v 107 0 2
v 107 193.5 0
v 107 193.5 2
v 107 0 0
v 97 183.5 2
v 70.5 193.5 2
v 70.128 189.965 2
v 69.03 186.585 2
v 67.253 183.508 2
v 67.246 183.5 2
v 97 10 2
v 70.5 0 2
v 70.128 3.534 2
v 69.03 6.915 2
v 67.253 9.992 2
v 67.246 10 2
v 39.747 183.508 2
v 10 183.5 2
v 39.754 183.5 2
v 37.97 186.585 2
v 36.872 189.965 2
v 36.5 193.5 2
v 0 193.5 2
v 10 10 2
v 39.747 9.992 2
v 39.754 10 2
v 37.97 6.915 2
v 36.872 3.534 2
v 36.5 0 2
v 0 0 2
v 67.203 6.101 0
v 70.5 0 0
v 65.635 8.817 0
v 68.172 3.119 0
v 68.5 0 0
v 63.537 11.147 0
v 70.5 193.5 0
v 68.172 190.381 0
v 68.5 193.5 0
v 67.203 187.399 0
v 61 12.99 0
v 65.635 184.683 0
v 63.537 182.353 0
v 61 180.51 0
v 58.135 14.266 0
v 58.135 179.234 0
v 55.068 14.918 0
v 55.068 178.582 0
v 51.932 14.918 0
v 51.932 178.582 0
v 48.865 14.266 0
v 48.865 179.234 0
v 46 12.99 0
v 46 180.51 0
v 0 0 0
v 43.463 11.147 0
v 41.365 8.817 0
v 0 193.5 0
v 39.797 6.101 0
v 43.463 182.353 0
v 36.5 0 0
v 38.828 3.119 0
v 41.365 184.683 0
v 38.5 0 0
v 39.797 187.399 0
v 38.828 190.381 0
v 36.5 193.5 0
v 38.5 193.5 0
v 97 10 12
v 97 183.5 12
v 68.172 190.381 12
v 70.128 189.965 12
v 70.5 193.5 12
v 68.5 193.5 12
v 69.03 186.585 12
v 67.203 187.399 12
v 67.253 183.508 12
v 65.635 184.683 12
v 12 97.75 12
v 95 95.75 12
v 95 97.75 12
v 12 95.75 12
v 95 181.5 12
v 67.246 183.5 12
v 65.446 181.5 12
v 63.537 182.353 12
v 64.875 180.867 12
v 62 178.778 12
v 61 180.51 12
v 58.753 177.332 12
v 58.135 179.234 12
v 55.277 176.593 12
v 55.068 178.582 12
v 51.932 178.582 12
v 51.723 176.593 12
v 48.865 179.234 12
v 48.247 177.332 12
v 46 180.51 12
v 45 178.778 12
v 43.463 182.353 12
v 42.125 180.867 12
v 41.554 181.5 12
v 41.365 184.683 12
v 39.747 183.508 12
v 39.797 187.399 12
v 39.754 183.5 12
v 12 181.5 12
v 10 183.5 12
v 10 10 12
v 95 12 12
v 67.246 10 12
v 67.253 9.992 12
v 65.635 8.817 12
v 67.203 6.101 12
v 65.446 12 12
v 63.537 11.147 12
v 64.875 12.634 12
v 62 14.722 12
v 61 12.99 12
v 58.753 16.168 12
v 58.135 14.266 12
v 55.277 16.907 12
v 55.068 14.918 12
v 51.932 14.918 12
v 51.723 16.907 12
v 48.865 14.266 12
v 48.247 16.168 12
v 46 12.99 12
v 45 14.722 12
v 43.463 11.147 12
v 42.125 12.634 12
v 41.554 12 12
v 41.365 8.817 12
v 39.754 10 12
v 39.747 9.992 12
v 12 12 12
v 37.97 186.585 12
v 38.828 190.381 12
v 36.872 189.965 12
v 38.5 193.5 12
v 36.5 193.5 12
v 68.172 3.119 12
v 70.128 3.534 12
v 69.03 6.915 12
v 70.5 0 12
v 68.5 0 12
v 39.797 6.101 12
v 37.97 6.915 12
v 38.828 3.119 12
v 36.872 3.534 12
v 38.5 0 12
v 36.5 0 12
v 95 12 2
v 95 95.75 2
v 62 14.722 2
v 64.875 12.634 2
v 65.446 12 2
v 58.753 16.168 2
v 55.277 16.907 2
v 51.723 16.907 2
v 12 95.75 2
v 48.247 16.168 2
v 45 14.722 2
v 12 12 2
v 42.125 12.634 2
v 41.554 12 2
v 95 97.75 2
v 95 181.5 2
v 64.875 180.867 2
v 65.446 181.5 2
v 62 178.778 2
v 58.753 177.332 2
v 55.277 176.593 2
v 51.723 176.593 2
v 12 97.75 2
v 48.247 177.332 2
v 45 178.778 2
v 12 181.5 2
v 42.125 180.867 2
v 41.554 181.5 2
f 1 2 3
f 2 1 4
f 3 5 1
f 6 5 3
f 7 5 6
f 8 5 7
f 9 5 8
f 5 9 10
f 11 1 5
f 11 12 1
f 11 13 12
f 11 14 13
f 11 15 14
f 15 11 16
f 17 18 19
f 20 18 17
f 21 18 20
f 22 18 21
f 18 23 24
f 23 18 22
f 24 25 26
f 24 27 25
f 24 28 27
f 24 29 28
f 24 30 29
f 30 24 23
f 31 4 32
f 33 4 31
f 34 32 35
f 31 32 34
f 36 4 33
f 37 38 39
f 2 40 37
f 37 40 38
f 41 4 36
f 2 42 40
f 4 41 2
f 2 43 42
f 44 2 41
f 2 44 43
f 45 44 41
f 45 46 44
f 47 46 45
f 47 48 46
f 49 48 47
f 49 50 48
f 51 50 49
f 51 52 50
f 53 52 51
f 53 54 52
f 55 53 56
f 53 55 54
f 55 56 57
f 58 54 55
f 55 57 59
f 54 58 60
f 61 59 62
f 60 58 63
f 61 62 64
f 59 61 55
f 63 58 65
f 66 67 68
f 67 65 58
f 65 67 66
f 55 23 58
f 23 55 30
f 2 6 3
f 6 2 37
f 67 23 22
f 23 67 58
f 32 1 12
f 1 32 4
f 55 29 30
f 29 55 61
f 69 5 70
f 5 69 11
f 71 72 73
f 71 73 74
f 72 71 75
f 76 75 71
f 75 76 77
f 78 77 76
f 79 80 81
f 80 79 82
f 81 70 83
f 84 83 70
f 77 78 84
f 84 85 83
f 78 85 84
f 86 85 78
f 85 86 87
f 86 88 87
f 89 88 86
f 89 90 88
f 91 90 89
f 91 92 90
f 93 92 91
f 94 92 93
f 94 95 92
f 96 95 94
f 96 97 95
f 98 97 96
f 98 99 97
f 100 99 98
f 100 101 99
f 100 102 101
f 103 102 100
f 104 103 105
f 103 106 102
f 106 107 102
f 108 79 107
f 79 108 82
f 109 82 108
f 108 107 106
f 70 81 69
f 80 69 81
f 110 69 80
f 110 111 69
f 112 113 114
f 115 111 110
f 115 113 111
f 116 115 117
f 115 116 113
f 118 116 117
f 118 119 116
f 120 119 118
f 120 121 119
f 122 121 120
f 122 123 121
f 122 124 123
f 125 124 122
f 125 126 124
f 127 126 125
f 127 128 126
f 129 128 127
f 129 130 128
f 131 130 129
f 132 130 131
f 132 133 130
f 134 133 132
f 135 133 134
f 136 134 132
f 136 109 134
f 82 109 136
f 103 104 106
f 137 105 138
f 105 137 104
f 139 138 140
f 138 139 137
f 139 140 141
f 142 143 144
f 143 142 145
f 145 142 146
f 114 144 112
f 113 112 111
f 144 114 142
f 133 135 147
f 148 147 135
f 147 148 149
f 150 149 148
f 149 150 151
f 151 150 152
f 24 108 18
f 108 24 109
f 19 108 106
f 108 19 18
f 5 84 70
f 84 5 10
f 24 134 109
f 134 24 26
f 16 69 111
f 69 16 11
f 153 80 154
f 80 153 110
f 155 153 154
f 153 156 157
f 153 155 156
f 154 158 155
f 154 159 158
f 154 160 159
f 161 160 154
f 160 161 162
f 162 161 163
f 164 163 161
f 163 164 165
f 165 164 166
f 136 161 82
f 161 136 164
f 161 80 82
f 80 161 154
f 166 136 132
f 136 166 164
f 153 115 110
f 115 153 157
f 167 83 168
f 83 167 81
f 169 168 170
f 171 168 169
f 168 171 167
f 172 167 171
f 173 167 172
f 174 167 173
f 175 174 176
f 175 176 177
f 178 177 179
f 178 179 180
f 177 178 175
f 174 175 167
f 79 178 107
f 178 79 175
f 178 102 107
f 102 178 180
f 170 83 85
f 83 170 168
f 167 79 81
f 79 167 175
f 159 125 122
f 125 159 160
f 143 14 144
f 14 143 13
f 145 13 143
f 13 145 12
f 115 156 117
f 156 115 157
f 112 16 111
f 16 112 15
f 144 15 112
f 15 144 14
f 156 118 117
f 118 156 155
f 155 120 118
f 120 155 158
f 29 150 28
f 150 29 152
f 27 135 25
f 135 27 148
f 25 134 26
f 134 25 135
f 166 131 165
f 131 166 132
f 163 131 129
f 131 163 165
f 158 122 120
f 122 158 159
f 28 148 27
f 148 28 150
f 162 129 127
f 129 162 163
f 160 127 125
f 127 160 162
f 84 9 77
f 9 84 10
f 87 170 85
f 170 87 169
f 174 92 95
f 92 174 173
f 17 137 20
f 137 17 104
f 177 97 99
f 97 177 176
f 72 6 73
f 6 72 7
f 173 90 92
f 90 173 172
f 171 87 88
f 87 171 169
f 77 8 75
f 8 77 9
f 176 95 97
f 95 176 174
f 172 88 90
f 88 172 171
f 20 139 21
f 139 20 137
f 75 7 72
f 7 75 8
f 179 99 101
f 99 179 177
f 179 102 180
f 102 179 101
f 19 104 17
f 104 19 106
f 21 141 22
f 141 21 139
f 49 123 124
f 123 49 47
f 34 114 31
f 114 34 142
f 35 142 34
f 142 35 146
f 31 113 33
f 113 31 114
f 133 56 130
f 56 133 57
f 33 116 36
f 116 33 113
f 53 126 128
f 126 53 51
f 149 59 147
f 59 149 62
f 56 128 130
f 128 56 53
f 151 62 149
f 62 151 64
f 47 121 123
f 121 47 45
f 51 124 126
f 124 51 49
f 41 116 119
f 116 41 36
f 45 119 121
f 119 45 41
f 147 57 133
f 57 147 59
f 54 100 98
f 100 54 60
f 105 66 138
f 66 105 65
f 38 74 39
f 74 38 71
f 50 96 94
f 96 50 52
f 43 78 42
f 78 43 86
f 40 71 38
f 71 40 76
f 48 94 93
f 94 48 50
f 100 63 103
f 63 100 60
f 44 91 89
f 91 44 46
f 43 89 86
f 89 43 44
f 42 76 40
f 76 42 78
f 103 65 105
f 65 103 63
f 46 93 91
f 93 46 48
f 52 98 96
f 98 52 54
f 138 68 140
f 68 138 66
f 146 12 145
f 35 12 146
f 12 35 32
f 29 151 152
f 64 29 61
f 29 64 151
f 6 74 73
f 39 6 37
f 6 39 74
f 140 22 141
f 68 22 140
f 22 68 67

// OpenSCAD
topWidth = 110 - 3;
topLength = ( 390 / 2 ) - 3 / 2;
thin = 2;
hokyoHeight = 10;
hokyoMargin = 10;
holeDiameter = 15;

difference() {
    union() {
        difference() {
            union() { // OR
                translate([ 0, 0, 0 ])
                cube([ topWidth, topLength, thin ] );
                translate([ hokyoMargin, hokyoMargin, thin ])
                cube([ topWidth - hokyoMargin * 2, topLength - hokyoMargin * 2, hokyoHeight ] );
            }
            translate([ hokyoMargin + thin, hokyoMargin + thin, thin ])
            cube([ topWidth - ( hokyoMargin + thin ) * 2, ( ( topLength - hokyoMargin * 2 - thin * 2 ) / 2 ) - thin / 2 , hokyoHeight ] );
            translate([ hokyoMargin + thin, hokyoMargin + thin + ( ( topLength - hokyoMargin * 2 - thin * 2 ) / 2 ) + thin / 2, thin ])
            cube([ topWidth - ( hokyoMargin + thin ) * 2, ( ( topLength - hokyoMargin * 2 - thin * 2 ) / 2 ) - thin / 2 , hokyoHeight ] );
        }
        translate([ topWidth / 2, 0, 0 ])
        cylinder(h = thin + hokyoHeight, r = holeDiameter + thin);
        translate([ topWidth / 2, topLength, 0 ])
        cylinder(h = thin + hokyoHeight, r = holeDiameter + thin);
    }
    translate([ topWidth / 2, 0, 0 ])
    cylinder(h = thin + hokyoHeight, r = holeDiameter );
    translate([ topWidth / 2, topLength, 0 ])
    cylinder(h = thin + hokyoHeight, r = holeDiameter );
    translate([ ( topWidth / 2 ) - ( holeDiameter + thin ), - holeDiameter - thin, 0 ])
    cube([ ( holeDiameter + thin ) * 2, holeDiameter + thin, hokyoHeight + thin ]);
    translate([ ( topWidth / 2 ) - ( holeDiameter + thin ), topLength, 0 ])
    cube([ ( holeDiameter + thin ) * 2, holeDiameter + thin, hokyoHeight + thin ]);
}
